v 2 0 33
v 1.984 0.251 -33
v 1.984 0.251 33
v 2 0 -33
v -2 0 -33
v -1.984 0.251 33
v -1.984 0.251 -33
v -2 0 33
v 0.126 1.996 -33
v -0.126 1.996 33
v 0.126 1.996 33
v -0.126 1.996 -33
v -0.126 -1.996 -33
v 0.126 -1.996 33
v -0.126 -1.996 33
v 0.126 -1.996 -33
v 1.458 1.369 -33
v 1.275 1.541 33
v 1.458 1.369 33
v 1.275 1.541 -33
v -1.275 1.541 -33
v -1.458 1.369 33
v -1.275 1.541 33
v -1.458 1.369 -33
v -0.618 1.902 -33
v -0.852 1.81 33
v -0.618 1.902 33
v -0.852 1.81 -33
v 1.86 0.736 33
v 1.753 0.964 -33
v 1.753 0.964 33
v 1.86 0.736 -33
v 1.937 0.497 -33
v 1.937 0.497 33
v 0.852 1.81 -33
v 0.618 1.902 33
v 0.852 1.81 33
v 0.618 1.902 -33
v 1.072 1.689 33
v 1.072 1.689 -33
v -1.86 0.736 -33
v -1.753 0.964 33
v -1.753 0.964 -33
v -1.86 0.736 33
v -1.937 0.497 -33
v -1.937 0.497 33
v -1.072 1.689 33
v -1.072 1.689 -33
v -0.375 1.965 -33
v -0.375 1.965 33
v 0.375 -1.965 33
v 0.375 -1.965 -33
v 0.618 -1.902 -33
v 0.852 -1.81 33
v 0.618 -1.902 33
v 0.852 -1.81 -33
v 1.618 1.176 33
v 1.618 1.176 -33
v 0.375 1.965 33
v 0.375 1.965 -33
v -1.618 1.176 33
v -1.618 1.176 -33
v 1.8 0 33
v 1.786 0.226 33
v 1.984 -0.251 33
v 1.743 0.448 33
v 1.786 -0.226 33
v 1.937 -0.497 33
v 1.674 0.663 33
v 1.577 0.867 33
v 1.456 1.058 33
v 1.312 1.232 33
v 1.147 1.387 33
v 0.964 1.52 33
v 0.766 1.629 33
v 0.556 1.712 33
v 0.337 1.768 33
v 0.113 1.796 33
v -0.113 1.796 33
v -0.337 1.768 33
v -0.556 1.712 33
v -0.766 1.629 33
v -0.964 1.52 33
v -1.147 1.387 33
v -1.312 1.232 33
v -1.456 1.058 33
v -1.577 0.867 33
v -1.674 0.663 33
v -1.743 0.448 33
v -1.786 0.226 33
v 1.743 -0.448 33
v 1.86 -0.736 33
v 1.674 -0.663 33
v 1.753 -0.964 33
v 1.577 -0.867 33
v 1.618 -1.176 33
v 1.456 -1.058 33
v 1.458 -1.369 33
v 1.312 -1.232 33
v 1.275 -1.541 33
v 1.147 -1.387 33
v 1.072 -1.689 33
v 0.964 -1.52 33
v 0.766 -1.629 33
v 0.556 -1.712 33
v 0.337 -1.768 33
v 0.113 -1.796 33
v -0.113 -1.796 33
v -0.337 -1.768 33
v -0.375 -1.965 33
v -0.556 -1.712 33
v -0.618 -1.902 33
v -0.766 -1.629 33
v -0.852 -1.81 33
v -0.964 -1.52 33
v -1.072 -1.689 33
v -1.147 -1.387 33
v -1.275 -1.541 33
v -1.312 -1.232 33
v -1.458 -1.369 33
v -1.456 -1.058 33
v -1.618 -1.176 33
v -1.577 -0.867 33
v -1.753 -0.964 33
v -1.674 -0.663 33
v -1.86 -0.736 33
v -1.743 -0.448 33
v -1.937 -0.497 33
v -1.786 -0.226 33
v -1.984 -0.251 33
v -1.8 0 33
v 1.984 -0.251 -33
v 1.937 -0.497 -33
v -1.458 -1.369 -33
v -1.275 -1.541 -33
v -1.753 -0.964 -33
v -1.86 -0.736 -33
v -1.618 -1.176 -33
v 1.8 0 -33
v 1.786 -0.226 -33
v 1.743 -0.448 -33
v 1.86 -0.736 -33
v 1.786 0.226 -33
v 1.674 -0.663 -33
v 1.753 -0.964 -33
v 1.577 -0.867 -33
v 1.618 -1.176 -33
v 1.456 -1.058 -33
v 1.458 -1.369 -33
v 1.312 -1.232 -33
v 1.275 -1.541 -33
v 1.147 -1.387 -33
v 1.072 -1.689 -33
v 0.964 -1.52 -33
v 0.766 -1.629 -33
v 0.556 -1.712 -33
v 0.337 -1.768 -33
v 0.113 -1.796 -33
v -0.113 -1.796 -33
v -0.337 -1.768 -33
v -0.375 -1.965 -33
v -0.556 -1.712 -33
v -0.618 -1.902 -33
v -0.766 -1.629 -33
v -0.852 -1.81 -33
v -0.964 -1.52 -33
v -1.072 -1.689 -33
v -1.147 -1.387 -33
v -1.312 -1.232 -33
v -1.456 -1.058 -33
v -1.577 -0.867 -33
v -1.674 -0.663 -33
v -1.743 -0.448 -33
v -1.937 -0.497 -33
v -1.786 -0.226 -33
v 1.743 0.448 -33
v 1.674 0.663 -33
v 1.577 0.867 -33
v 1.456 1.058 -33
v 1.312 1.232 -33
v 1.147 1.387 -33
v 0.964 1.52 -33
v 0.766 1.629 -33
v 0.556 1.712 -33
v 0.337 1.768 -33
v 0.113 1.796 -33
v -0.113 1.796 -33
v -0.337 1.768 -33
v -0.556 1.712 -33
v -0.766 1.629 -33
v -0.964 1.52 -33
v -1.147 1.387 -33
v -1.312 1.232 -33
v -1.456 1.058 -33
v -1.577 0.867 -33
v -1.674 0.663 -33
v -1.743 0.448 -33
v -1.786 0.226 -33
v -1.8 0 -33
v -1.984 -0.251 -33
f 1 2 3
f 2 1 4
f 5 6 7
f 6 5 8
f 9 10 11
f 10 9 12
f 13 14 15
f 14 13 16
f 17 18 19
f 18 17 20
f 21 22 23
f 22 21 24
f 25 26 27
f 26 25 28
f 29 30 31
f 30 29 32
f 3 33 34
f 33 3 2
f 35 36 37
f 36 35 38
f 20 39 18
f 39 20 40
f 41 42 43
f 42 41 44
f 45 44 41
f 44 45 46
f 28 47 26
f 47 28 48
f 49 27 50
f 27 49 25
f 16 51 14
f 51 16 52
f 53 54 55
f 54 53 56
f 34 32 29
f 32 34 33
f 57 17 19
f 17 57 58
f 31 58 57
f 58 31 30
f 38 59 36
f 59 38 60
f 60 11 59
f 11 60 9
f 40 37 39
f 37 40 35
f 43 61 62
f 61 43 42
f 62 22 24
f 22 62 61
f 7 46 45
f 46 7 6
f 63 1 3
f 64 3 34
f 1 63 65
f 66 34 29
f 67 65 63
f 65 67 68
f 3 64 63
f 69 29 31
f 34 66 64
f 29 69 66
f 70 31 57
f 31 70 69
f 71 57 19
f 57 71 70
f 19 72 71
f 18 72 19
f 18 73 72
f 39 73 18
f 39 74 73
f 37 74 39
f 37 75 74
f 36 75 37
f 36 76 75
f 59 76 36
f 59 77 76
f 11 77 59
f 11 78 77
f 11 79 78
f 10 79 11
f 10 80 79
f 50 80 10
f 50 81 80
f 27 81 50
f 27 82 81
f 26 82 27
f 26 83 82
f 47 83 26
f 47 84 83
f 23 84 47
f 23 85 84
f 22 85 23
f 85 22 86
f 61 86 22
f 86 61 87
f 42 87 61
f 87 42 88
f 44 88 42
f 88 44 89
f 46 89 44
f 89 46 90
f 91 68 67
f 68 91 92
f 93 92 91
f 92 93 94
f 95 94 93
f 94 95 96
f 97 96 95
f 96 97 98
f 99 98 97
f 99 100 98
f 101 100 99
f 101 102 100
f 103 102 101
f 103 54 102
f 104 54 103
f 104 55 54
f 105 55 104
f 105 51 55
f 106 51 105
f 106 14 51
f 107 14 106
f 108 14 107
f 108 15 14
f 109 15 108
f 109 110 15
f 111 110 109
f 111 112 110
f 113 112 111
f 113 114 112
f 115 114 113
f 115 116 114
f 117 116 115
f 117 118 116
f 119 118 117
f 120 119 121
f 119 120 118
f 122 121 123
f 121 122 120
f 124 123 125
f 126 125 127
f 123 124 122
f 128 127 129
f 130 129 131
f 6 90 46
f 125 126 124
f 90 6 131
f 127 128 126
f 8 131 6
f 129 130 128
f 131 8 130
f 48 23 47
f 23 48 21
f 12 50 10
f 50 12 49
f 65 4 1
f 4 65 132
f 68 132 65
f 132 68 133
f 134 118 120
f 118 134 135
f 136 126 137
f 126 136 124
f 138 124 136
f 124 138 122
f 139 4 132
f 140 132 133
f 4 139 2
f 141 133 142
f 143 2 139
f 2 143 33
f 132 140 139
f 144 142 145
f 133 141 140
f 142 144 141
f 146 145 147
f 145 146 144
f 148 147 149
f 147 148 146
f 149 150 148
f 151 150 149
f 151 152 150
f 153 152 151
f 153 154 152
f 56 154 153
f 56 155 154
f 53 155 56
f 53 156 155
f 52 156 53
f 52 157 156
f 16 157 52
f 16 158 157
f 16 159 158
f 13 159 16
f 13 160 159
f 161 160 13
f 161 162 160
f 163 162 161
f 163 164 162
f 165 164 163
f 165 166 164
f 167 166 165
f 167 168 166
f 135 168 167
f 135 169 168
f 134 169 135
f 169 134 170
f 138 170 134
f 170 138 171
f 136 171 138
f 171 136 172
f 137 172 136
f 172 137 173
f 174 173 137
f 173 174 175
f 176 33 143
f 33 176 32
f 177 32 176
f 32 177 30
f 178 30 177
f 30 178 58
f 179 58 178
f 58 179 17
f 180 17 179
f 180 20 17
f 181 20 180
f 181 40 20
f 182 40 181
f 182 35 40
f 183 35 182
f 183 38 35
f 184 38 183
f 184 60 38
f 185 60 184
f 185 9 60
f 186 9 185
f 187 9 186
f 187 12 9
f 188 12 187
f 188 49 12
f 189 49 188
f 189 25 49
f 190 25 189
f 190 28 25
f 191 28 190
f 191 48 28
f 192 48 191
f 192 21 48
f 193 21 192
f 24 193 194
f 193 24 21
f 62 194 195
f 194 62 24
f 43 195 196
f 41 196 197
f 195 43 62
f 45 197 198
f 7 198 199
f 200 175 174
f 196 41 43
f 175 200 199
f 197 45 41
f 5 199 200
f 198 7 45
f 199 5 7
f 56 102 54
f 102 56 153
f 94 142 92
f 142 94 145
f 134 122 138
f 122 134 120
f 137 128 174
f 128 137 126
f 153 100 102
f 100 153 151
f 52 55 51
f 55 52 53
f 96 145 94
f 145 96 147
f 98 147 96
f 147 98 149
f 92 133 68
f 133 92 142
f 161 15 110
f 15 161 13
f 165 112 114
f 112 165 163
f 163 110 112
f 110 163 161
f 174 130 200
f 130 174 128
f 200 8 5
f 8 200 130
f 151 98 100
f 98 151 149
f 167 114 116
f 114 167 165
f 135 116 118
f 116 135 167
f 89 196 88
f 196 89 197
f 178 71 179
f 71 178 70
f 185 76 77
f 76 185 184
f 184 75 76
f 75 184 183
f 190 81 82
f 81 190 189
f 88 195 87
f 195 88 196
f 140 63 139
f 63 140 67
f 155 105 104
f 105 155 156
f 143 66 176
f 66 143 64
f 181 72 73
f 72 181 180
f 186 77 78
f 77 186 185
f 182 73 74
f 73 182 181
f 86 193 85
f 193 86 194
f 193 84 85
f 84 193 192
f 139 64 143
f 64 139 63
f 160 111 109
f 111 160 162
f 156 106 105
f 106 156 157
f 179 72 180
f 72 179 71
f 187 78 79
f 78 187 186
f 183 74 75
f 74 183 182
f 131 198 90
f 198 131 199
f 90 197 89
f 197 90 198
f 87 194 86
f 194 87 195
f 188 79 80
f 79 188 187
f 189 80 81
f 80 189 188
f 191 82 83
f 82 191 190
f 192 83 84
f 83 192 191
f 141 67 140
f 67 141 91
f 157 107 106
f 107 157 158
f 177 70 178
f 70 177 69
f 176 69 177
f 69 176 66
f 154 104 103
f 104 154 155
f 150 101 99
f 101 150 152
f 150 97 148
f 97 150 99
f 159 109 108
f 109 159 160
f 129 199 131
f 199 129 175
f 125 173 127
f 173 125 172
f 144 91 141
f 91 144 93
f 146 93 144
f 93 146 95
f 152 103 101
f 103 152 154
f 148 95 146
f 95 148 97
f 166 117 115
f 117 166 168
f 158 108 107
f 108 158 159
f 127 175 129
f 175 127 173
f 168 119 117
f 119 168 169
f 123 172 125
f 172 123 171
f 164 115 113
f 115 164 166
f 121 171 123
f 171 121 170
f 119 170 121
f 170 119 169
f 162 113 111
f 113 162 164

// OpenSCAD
$fn = 50;


difference() {
	union() {
		translate(v = [0, 0, -33.0000000000]) {
			cylinder(h = 66, r = 2.0000000000);
		}
	}
	union() {
		translate(v = [0, 0, -100.0000000000]) {
			cylinder(h = 200, r = 1.8000000000);
		}
	}
}
